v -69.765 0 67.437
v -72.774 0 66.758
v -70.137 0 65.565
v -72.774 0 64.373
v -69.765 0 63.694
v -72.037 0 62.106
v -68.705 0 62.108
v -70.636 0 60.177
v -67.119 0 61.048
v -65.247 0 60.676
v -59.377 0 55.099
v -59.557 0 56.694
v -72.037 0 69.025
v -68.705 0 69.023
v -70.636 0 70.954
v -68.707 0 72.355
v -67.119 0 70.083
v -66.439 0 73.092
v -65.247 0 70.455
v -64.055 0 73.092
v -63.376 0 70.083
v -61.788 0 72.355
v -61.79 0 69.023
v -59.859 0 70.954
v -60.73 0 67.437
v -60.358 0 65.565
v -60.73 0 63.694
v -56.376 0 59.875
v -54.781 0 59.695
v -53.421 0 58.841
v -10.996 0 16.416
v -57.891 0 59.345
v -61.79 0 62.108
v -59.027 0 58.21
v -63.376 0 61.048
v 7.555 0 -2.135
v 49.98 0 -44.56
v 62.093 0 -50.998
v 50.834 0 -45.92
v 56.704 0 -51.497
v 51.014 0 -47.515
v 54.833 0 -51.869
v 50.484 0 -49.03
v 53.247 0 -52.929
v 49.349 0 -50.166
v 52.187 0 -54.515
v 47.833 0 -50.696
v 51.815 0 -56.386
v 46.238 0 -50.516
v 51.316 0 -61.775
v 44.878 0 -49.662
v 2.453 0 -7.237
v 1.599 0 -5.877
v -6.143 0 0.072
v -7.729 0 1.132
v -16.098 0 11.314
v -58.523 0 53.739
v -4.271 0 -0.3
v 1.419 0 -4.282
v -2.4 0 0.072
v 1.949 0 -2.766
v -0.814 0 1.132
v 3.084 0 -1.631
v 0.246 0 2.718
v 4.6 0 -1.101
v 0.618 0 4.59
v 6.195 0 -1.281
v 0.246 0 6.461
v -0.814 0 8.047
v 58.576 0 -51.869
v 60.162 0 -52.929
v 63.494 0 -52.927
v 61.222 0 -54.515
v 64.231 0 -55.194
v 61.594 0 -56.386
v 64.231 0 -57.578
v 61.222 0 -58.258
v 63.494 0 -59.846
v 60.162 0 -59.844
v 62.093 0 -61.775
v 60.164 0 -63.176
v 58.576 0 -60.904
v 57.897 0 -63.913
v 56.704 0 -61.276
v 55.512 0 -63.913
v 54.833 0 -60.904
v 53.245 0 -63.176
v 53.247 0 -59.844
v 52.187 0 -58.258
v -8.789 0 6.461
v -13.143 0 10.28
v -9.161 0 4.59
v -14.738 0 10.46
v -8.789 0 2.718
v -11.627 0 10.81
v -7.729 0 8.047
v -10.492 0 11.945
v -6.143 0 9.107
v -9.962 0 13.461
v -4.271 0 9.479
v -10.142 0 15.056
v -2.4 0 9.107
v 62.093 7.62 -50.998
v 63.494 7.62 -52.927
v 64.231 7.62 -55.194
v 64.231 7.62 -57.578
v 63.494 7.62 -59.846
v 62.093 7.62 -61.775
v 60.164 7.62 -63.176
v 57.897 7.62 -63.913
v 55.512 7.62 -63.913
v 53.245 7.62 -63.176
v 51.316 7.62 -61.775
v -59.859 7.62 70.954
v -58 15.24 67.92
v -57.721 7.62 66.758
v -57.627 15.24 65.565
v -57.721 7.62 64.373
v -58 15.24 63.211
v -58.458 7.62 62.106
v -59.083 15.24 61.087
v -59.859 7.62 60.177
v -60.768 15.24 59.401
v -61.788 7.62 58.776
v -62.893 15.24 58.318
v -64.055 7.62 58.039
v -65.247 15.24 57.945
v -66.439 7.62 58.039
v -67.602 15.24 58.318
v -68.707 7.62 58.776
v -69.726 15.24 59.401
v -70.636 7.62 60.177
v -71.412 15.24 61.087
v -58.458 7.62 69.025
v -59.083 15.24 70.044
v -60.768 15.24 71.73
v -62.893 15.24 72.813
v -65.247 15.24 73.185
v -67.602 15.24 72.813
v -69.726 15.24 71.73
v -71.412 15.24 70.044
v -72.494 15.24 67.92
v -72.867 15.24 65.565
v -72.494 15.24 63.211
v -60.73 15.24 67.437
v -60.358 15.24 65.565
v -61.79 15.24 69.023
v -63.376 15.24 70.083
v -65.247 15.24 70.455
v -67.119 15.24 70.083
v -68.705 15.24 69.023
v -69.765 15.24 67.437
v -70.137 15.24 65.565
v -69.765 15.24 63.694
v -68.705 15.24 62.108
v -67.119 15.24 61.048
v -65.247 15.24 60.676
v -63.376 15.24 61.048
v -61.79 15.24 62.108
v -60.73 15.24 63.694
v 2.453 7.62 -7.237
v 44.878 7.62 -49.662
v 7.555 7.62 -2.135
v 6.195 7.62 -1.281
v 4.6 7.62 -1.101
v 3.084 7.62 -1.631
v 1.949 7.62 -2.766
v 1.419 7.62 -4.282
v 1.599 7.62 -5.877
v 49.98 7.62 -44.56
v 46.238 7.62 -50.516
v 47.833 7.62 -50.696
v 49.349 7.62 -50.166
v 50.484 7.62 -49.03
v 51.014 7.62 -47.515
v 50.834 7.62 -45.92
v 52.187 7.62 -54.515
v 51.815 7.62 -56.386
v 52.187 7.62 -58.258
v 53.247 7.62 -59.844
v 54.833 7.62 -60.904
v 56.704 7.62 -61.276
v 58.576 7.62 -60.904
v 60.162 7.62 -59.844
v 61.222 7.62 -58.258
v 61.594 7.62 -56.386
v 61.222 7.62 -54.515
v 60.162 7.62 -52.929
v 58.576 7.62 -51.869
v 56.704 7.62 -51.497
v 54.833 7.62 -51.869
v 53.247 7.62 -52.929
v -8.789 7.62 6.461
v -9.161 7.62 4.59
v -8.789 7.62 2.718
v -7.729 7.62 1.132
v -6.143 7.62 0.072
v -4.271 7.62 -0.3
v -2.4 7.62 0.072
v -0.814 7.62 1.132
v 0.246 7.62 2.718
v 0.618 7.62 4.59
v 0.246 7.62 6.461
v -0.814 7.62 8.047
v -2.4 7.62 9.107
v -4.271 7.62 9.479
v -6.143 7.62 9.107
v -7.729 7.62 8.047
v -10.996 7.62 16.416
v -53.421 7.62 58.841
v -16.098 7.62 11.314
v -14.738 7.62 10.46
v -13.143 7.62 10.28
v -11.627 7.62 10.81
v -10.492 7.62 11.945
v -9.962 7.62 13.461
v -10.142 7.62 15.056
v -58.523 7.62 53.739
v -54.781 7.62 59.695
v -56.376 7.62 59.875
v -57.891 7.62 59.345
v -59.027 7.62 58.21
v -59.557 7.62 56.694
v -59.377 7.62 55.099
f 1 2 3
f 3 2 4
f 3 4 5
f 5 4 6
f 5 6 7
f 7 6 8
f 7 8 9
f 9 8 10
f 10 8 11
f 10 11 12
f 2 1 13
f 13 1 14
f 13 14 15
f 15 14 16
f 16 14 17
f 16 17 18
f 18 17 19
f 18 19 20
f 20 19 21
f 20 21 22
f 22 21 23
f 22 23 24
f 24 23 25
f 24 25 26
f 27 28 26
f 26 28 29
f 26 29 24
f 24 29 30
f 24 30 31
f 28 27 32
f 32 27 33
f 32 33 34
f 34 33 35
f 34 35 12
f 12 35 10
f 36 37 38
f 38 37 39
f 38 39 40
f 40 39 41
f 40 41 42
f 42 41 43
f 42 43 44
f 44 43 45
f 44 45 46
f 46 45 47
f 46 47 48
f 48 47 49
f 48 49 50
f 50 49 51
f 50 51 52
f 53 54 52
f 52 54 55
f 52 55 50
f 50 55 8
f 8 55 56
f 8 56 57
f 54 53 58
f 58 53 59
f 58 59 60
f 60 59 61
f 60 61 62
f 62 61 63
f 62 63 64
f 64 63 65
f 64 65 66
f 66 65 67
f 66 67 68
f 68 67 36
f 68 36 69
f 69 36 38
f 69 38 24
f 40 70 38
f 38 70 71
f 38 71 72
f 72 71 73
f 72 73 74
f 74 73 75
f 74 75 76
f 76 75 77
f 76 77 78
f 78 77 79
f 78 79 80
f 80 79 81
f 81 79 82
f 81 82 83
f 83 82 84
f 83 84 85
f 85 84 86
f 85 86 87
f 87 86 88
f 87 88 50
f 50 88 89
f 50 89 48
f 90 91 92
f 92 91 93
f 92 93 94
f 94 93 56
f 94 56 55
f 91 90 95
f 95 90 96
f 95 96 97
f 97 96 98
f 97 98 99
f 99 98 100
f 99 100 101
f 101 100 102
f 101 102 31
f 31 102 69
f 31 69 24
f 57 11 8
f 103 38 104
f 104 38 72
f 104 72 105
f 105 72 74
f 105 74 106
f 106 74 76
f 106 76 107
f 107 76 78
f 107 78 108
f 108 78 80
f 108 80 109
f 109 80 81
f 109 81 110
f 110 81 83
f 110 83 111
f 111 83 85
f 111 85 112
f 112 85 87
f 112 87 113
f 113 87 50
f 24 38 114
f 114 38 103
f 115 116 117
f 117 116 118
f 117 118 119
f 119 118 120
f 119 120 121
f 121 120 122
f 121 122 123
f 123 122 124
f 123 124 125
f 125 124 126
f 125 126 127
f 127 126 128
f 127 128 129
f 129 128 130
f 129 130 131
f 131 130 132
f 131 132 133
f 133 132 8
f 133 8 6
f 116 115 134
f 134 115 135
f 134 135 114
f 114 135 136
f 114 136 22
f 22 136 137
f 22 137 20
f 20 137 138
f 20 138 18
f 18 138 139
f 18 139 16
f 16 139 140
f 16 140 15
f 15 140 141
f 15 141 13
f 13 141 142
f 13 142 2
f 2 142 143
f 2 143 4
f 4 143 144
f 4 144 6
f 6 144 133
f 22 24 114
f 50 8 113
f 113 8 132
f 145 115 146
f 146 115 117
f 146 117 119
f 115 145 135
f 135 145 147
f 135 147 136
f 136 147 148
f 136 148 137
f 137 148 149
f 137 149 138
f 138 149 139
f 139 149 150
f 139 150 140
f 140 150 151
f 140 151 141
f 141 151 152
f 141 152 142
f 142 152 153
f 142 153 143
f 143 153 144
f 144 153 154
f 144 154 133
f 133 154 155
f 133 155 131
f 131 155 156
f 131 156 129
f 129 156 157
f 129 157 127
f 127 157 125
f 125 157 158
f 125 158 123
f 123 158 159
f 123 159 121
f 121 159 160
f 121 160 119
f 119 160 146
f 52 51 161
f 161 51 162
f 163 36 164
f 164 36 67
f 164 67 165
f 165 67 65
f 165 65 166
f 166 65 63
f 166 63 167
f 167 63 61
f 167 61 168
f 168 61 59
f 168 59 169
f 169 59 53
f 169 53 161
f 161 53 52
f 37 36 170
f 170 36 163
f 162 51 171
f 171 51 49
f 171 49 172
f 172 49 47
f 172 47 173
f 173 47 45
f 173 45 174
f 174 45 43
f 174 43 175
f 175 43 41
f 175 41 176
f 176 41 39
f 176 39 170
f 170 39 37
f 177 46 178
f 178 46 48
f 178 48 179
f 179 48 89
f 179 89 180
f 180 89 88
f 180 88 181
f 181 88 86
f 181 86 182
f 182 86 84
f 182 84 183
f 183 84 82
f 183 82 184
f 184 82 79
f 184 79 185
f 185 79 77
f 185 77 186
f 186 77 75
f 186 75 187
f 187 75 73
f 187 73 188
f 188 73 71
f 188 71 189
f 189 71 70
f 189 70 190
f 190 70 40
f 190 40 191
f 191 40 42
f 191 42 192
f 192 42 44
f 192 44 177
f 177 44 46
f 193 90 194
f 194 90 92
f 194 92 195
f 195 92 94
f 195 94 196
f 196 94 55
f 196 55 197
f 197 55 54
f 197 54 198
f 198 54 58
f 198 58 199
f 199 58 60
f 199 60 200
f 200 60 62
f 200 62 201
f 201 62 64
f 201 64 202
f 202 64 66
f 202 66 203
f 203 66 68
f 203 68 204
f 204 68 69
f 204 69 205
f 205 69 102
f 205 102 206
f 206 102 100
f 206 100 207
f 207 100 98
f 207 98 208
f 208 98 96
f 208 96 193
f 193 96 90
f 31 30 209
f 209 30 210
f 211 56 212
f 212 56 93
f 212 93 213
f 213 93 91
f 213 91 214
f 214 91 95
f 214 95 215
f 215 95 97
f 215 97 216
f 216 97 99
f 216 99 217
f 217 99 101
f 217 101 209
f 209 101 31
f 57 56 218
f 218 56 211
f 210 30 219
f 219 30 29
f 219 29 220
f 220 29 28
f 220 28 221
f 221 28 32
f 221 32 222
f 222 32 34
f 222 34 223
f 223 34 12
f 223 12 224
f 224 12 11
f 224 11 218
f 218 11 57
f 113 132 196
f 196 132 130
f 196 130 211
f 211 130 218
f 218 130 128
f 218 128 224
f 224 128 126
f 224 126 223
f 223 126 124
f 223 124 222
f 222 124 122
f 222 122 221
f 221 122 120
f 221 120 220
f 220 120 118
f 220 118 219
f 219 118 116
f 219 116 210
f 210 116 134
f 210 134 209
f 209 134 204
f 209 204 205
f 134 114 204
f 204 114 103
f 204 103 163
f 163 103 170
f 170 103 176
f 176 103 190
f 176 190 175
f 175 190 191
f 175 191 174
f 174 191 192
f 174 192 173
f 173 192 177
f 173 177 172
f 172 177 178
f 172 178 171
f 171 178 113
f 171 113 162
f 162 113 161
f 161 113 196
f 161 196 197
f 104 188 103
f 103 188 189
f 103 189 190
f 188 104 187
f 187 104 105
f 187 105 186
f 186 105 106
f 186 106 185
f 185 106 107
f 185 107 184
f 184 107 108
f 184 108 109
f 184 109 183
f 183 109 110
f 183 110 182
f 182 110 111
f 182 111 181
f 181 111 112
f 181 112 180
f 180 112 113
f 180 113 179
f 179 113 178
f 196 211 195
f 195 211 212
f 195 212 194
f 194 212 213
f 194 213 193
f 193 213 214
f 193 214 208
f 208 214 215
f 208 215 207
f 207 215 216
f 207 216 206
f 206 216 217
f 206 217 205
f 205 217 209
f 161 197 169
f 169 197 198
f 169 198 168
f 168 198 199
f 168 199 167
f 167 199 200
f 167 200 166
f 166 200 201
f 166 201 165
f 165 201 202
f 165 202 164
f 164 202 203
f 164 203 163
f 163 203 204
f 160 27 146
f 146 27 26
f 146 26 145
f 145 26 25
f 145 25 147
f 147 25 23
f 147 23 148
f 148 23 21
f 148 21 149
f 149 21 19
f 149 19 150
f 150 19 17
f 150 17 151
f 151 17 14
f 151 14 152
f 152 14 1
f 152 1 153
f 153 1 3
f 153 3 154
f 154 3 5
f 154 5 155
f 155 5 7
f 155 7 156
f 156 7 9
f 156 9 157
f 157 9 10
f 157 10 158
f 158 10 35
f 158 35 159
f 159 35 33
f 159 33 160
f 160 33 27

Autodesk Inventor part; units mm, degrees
ref_plane "YZ Plane" through (0, 0, 0) normal (1, 0, 0) x (0, 1, 0)
ref_plane "XZ Plane" through (0, 0, 0) normal (0, 1, 0) x (-1, 0, 0)
ref_plane "XY Plane" through (0, 0, 0) normal (0, 0, 1) x (1, 0, 0)
sketch "Sketch1" plane through (0, 0, 0) normal (0, 1, 0) x (-1, 0, 0)
  circle A0 centre (-56.7045, -56.3864) radius 4.8895
  circle A1 centre (-56.7045, -56.3864) radius 4.8895
  line L0 (-52.2143, -60.8765) -> (69.7375, 61.0754)
  line L1 (60.7573, 70.0556) -> (-61.1946, -51.8963)
  arc A2 (-61.1946, -51.8963) -> (-52.2143, -60.8765) centre (-56.7045, -56.3864) ccw
  arc A3 (69.7375, 61.0754) -> (60.7573, 70.0556) centre (65.2474, 65.5655) ccw
  circle A4 centre (4.2715, 4.5895) radius 4.8895
  circle A5 centre (65.2474, 65.5655) radius 4.8895
  line L2 (7.7289, 8.0469) -> (61.79, 62.1081)
  line L3 (68.7048, 69.0229) -> (69.7375, 70.0556)
  line L4 (-53.2471, -52.929) -> (0.8141, 1.1322) construction
  line L5 (7.7289, 8.0469) -> (61.79, 62.1081) construction
  line L6 (0.8141, 1.1322) -> (-53.2471, -52.929)
  line L7 (-60.1619, -59.8438) -> (-61.1946, -60.8765)
  line L8 (-5.0037, -4.6857) -> (-47.4293, -47.1112) construction
  line L9 (-7.5546, -2.1348) -> (-49.9802, -44.5603)
  line L10 (-44.8784, -49.6621) -> (-2.4529, -7.2365)
  arc A6 (-2.4529, -7.2365) -> (-7.5546, -2.1348) centre (-5.0037, -4.6857) ccw
  arc A7 (-49.9802, -44.5603) -> (-44.8784, -49.6621) centre (-47.4293, -47.1112) ccw
  line L11 (4.2715, 4.5895) -> (-0.2187, 9.0797)
  arc A8 (10.9958, 16.4156) -> (16.0976, 11.3139) centre (13.5467, 13.8648) ccw
  line L12 (10.9958, 16.4156) -> (53.4213, 58.8412)
  line L13 (58.5231, 53.7394) -> (16.0976, 11.3139)
  arc A9 (58.5231, 53.7394) -> (53.4213, 58.8412) centre (55.9722, 56.2903) ccw
  line L14 (70.6356, 60.1773) -> (-51.3163, -61.7745)
  arc A10 (-62.0926, -50.9982) -> (-51.3163, -61.7745) centre (-56.7045, -56.3864) ccw
  line L15 (-62.0926, -50.9982) -> (59.8592, 70.9536)
  arc A11 (70.6356, 60.1773) -> (59.8592, 70.9536) centre (65.2474, 65.5655) ccw
  circle A12 centre (65.2474, 65.5655) radius 7.62
  point P0 (0, 0)
  point P1 (29.6663, 4.6577)
  point P2 (-26.2165, -25.8984)
  dimension "d0" = 172.466
  dimension "d1" = 12.7
  dimension "d2" = 9.779
  dimension "d3" = 9.779
  dimension "d4" = 9.779
  dimension "d9" = 1.27
extrude "Extrusion1" add sketch "Sketch1" along normal blind 7.62 contours A0 L6 A7 L10 A6 A4 L2 A8 L13 A9 A12 L0 A2 L7 | A0 L7 A2 L1 L11 A4 L6 A6 L9 A7 | L1 A12 L2 A9 L12 A8 A4 L11 | A12 L2 A5 L3 A3 L0 | L1 A3 L3 A5 L2 A12
sketch "Sketch2" plane through (0, 7.62, 0) normal (0, 1, 0) x (1, 0, 0)
  line L0 (-60.7573, -70.0556) -> (61.1946, 51.8963) projected
  arc A0 (61.1946, 51.8963) -> (52.2143, 60.8765) centre (56.7045, 56.3864) ccw projected
  line L1 (52.2143, 60.8765) -> (-69.7375, -61.0754) projected
  arc A1 (-69.7375, -61.0754) -> (-60.7573, -70.0556) centre (-65.2474, -65.5655) ccw projected
  arc A2 (-58.5231, -53.7394) -> (-53.4213, -58.8412) centre (-55.9722, -56.2903) ccw projected
  line L2 (-58.5231, -53.7394) -> (-16.0976, -11.3139) projected
  arc A3 (-10.9958, -16.4156) -> (-16.0976, -11.3139) centre (-13.5467, -13.8648) ccw projected
  line L3 (-10.9958, -16.4156) -> (-53.4213, -58.8412) projected
  circle A4 centre (-65.2474, -65.5655) radius 4.8895 projected
  circle A5 centre (-4.2715, -4.5895) radius 4.8895 projected
  circle A6 centre (56.7045, 56.3864) radius 4.8895 projected
  arc A7 (49.9802, 44.5603) -> (44.8784, 49.6621) centre (47.4293, 47.1112) ccw projected
  line L4 (49.9802, 44.5603) -> (7.5546, 2.1348) projected
  arc A8 (2.4529, 7.2365) -> (7.5546, 2.1348) centre (5.0037, 4.6857) ccw projected
  line L5 (2.4529, 7.2365) -> (44.8784, 49.6621) projected
  circle A9 centre (-65.2474, -65.5655) radius 6.35
  point P0 (0, 0)
extrude "Extrusion2" add sketch "Sketch2" along normal blind 7.62 contours A1 A9
extrude "Extrusion3" add sketch "Sketch1" along normal blind 7.62 contours A2 L0 A12 L14 A10 L15 L1 | L0 A3 L1 A12 A11
extrude "Extrusion4" add sketch "Sketch1" along normal up to surface (15.24 mm away) contours A12 L2 A5 L3 A3 L0 | L0 A3 L1 A12 A11 | L1 A3 L3 A5 L2 A12 | A5
extrude "Extrusion5" cut sketch "Sketch1" along normal blind 25.4 contours A5
properties part number "Bump Arm"
